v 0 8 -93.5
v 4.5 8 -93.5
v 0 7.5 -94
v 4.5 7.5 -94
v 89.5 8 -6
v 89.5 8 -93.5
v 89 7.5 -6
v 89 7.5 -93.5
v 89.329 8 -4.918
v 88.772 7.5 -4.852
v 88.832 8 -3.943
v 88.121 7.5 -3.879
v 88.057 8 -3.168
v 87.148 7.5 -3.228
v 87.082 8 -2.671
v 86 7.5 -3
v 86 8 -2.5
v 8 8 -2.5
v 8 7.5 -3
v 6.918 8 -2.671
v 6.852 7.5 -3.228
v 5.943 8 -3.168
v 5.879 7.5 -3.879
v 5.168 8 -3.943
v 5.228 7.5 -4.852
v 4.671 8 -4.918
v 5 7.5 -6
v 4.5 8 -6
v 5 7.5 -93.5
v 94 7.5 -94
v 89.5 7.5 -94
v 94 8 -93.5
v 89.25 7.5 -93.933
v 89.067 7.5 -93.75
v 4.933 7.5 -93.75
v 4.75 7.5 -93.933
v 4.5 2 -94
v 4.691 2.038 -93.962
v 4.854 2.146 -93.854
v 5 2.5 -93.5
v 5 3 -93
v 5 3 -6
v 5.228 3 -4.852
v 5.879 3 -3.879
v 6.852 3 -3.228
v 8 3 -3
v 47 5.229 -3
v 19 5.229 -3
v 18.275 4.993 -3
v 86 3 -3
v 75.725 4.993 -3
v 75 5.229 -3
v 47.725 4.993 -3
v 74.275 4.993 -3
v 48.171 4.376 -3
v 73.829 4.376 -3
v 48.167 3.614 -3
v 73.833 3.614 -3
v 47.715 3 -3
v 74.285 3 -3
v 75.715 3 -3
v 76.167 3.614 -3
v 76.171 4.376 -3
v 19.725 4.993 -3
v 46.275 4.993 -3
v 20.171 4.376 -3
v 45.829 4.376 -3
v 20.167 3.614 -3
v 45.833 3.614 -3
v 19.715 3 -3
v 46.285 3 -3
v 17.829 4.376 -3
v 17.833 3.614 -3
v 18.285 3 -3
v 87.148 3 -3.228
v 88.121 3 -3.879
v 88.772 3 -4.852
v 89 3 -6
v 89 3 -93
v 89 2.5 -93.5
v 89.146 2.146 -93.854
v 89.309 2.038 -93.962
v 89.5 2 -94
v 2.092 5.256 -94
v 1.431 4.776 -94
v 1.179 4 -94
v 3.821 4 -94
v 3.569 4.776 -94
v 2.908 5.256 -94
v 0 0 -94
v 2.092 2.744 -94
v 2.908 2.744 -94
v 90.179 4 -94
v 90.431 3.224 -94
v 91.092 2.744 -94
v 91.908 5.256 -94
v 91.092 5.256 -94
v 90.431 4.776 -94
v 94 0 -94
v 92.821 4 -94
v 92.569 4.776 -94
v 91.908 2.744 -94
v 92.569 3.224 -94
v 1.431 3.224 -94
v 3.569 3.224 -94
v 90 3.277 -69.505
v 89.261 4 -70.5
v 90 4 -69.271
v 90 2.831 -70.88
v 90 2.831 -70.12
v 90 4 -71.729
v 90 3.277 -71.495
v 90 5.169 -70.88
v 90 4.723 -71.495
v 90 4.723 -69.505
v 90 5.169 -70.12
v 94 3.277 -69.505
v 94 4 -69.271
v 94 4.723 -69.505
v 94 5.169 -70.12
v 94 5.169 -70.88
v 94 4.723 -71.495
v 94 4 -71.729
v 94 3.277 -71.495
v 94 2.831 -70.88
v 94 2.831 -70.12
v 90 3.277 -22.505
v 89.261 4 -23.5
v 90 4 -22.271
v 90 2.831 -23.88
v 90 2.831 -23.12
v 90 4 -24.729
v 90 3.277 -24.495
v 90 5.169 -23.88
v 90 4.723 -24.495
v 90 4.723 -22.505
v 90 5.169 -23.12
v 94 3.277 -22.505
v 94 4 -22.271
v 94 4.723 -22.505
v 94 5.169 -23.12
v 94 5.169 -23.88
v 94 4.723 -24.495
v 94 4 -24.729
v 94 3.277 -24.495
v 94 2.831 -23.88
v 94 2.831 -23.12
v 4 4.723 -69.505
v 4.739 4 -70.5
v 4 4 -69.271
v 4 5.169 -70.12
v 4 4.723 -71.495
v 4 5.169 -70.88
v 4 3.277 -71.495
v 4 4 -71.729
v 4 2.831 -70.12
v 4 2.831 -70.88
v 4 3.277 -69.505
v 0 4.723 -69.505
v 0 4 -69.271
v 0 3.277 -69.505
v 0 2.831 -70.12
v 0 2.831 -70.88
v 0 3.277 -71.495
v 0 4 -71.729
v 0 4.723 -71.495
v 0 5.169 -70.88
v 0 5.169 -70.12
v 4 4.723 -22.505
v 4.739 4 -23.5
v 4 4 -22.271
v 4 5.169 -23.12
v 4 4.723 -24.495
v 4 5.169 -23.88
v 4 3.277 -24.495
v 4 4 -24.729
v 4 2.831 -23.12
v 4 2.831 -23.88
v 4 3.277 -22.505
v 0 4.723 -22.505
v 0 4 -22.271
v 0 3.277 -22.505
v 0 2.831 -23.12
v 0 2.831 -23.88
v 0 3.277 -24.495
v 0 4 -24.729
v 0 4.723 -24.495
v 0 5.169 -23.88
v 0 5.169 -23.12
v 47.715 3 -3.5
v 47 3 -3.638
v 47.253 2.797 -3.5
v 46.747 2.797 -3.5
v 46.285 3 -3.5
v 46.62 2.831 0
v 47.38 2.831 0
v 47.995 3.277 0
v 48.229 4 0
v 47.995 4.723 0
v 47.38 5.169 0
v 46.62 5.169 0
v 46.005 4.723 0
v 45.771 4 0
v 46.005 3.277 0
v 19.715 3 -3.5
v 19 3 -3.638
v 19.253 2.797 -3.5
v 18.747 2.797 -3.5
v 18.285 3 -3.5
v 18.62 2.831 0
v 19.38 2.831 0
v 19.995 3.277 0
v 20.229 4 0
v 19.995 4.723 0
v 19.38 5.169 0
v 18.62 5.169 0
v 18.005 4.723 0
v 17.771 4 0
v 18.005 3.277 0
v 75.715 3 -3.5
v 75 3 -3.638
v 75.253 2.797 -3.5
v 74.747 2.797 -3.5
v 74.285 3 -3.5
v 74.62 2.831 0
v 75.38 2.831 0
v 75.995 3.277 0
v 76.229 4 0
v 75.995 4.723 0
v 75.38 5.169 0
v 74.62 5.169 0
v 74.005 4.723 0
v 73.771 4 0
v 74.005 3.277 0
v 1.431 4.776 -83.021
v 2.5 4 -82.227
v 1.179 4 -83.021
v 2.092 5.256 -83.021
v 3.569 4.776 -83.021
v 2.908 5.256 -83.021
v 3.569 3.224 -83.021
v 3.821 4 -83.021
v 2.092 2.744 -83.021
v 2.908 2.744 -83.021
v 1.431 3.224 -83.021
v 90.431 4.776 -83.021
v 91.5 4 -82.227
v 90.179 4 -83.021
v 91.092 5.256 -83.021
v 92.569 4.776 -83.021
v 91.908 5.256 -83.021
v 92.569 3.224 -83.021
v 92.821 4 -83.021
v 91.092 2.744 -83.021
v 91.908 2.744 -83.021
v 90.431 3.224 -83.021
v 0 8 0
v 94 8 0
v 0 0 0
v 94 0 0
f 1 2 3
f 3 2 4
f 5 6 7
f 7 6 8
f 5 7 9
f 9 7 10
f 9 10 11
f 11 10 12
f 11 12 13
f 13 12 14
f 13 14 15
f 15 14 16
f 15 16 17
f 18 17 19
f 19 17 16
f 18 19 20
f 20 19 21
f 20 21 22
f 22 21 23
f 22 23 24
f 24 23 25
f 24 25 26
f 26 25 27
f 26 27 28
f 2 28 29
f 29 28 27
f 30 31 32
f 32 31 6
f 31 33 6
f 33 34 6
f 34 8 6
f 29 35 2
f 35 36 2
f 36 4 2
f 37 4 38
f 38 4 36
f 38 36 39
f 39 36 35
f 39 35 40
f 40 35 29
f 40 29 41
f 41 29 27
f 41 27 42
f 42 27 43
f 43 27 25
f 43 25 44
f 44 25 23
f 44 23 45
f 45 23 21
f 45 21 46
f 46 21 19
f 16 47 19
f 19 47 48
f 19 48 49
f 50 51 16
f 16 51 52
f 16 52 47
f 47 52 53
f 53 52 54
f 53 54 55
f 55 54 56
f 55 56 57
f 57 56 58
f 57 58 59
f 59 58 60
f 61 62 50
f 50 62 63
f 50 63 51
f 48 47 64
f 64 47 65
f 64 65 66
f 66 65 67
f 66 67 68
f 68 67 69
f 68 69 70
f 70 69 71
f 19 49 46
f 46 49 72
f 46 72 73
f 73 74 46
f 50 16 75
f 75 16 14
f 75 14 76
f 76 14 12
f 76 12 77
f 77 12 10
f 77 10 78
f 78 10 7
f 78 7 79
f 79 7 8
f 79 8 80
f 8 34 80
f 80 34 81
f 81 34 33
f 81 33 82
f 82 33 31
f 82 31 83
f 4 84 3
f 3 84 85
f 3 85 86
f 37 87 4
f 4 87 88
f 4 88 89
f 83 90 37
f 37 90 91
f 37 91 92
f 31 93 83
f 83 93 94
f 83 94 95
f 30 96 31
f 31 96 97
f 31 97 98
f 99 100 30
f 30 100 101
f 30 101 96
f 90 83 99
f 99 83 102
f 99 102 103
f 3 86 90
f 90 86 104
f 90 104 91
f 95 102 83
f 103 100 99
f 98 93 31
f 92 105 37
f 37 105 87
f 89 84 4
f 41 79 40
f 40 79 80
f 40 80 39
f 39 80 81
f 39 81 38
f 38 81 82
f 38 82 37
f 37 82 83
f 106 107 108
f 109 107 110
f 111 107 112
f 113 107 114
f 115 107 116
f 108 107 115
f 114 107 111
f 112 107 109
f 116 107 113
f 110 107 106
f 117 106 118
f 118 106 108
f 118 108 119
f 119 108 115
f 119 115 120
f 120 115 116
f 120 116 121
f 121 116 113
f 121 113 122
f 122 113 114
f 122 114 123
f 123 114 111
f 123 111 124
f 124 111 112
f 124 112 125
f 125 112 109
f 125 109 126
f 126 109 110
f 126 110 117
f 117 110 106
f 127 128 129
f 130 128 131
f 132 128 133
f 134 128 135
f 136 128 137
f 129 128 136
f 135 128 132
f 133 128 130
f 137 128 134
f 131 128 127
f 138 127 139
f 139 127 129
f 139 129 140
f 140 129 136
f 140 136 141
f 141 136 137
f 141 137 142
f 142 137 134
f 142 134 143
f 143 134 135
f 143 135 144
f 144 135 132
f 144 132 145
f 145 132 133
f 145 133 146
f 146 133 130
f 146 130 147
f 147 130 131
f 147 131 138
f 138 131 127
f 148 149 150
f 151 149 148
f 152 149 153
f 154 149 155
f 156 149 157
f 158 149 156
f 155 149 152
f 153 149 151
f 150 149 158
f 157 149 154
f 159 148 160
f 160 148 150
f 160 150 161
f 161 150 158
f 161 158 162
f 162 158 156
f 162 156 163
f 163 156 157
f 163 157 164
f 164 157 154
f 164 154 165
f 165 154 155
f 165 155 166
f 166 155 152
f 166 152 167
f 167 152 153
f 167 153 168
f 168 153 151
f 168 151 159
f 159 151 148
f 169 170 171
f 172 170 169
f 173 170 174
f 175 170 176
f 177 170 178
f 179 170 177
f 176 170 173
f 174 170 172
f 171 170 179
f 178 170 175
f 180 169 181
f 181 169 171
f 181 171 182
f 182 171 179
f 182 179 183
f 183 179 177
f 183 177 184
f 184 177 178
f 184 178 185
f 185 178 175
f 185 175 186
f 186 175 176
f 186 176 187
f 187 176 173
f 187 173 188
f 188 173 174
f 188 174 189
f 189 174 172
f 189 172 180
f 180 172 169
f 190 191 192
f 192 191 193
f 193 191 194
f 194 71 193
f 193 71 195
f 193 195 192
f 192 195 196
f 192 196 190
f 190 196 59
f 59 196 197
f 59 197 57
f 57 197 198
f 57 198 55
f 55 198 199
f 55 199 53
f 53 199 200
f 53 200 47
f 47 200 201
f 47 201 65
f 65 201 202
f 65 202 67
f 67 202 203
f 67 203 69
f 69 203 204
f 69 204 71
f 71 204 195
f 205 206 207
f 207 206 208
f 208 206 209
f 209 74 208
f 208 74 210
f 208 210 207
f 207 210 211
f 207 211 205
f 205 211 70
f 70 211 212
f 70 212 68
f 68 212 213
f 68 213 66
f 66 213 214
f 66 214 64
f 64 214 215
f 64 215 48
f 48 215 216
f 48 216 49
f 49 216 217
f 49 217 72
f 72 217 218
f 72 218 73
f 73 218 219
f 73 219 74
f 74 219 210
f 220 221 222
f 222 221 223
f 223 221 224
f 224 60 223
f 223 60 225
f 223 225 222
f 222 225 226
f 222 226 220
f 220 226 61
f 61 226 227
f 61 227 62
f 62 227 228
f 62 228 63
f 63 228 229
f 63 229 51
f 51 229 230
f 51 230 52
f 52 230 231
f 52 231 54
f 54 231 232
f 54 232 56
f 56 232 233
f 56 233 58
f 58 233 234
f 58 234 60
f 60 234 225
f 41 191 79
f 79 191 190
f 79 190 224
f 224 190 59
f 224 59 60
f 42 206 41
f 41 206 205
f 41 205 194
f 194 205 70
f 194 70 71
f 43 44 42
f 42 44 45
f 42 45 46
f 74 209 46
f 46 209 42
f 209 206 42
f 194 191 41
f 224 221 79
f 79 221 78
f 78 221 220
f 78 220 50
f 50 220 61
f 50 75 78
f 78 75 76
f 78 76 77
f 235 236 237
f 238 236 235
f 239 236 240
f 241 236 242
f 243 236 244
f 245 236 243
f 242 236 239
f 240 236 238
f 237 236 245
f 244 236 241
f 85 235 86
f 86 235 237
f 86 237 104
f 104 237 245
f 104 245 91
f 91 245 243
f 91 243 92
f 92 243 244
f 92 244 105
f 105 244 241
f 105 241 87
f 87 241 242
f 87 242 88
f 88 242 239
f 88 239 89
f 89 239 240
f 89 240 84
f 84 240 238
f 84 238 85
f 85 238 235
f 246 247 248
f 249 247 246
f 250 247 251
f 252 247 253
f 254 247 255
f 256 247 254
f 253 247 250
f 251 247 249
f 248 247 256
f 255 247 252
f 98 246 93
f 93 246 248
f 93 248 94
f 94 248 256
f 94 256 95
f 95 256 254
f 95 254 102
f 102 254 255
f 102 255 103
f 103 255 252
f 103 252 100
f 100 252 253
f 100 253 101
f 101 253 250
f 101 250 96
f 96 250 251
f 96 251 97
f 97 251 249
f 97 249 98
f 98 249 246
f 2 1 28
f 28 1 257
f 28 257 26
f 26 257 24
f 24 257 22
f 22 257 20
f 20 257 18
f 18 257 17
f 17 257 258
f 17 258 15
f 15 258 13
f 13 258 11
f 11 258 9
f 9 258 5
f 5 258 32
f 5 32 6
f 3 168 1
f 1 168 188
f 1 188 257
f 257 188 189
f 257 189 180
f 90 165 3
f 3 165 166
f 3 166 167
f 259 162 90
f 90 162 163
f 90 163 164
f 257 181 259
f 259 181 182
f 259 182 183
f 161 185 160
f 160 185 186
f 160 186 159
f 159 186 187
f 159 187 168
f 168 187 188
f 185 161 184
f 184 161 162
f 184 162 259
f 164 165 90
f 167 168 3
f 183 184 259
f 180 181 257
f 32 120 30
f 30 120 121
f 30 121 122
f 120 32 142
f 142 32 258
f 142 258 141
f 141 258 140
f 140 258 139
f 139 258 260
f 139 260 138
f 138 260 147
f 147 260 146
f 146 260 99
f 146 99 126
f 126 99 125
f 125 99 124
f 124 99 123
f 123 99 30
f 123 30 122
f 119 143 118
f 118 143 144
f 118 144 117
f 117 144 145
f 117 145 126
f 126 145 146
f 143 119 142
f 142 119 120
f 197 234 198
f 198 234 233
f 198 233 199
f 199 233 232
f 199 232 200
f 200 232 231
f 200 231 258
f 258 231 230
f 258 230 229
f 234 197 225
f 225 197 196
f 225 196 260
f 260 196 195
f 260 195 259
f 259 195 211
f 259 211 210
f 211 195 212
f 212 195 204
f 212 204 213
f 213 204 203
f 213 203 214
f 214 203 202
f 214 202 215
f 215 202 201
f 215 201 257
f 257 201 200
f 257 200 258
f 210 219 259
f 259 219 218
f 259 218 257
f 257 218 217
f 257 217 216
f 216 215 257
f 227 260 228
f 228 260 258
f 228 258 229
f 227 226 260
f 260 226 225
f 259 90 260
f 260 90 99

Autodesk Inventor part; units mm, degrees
ref_plane "YZ Plane" through (0, 0, 0) normal (1, 0, 0) x (0, 1, 0)
ref_plane "XZ Plane" through (0, 0, 0) normal (0, 1, 0) x (-1, 0, 0)
sketch "Sketch3" plane through (0, 0, 0) normal (0, 1, 0) x (-1, 0, 0)
  line L0 (3, 3) -> (-97, 3) construction
  line L1 (-97, 3) -> (-97, 0) construction
  line L2 (-97, 0) -> (3, 0) construction
  line L3 (3, 0) -> (3, 3) construction
  line L4 (-97, 0) -> (-94, 0) construction
  line L5 (-94, 0) -> (-94, -94) construction
  line L6 (-94, -94) -> (-97, -94) construction
  line L7 (-97, -94) -> (-97, 0) construction
  line L8 (-97, -94) -> (3, -94) construction
  line L9 (3, -94) -> (3, -97) construction
  line L10 (3, -97) -> (-97, -97) construction
  line L11 (-97, -97) -> (-97, -94) construction
  line L12 (3, -94) -> (0, -94) construction
  line L13 (0, -94) -> (0, 0) construction
  line L14 (0, 0) -> (3, 0) construction
  line L15 (3, 0) -> (3, -94) construction
  line L16 (0, -94) -> (-94, -94)
  line L17 (-94, -94) -> (-94, 0)
  line L18 (-94, 0) -> (0, 0)
  line L19 (0, 0) -> (0, -94)
  line L20 (3, 3) -> (3, 0) construction
  dimension "d6" = 3
  dimension "d7" = 100
  dimension "d8" = 100
  dimension "d9" = 3
extrude "Extrusion2" add sketch "Sketch3" along normal blind 3
sketch "Sketch4" plane through (0, 3, 0) normal (0, 1, 0) x (1, 0, 0)
  line L0 (94, 94) -> (0, 94) projected
  line L1 (0, 0) -> (94, 0) projected
  line L2 (0, 94) -> (5, 94)
  line L3 (5, 94) -> (5, 0)
  line L4 (5, 0) -> (0, 0)
  line L5 (0, 0) -> (0, 94)
  line L6 (94, 0) -> (94, 94) projected
  line L7 (94, 94) -> (89, 94)
  line L8 (89, 94) -> (89, 0)
  line L9 (89, 0) -> (94, 0)
  line L10 (94, 0) -> (94, 94)
  line L11 (5, 3) -> (89, 3)
  line L12 (89, 3) -> (89, 0)
  line L13 (89, 0) -> (5, 0)
  line L14 (5, 0) -> (5, 3)
  dimension "d12" = 5
  dimension "d13" = 3
extrude "Extrusion3" add sketch "Sketch4" along normal blind 5 contours L6 L1 L8 L0 | L3 L1 L5 L0 | L8 L1 L3 L11
sketch "Sketch6" plane through (94, 0, -94) normal (0, 0, -1) x (-1, 0, 0)
  line L0 (0, 0) -> (94, 0) projected
  line L1 (89, 8) -> (94, 8) projected
  line L2 (89, 3) -> (89, 8) projected
  line L3 (94, 0) -> (94, 8) projected
  line L4 (0, 0) -> (0, 8) projected
  point P0 (91.5, 4)
  point P1 (2.5, 4)
  dimension "d28" = 8
  dimension "d29" = 5
  dimension "d30" = 2.5
  dimension "d31" = 4
  dimension "d32" = 2.5
hole "Hole1" at (2.5, 4, -94) at (91.5, 4, -94) direction (0, 0, 1) diameter 2.6416 depth 10.979 tip angle 118 thread size "6-32 UNC" class "2B" standard "ANSI Unified Screw Threads"
fillet "Fillet1" radius 3 2 edges at (89, 5.5, -3) (5, 5.5, -3)
fillet "Fillet2" radius 0.5 2 edges at (5, 5.5, -94) (89, 5.5, -94)
sketch "Sketch7" plane through (0, 0, 0) normal (0, 0, 1) x (1, 0, 0)
  line L0 (0, 0) -> (94, 0) projected
  line L1 (0, 0) -> (0, 8) projected
  line L2 (89, 8) -> (5, 8) projected
  point P0 (19, 4)
  point P1 (47, 4)
  point P2 (75, 4)
  dimension "d40" = 4
  dimension "d57" = 84
  dimension "d58" = 14
  dimension "d59" = 28
  dimension "d60" = 28
hole "Hole2" at (19, 4, 0) at (47, 4, 0) at (75, 4, 0) direction (0, 0, -1) diameter 2.459 depth 3.5 tip angle 118 thread size "M3x0.5" class "6H" standard "ANSI Metric M Profile"
sketch "Sketch9" plane through (0, 0, -94) normal (-1, 0, 0) x (0, 0, 1)
  line L0 (0, 8) -> (94, 8) projected
  line L1 (0, 0) -> (94, 0) projected
  line L2 (0, 0) -> (0, 8) projected
  point P0 (23.5, 4)
  point P1 (70.5, 4)
  dimension "d51" = 4
  dimension "d52" = 8
  dimension "d53" = 94
  dimension "d54" = 23.5
  dimension "d55" = 47
hole "Hole3" at (0, 4, -70.5) at (0, 4, -23.5) direction (1, 0, 0) diameter 2.459 depth 4 tip angle 118 thread size "M3x0.5" class "6H" standard "ANSI Metric M Profile"
ref_plane "Work Plane1" through (47, 0, -94) normal (-1, 0, 0) x (0, 0, 1)
mirror "Mirror1" about plane through (47, 0, -94) normal (-1, 0, 0) of "Hole3"
chamfer "Chamfer2" distance 1 angle 45 1 edges at (47, 3, -94)
chamfer "Chamfer3" distance 0.5 angle 45 3 edges at (5, 8, -49.75) (47, 8, -3) (89, 8, -49.75)
ref_plane "Work Plane2" through (47, 0, -94) normal (-1, 0, 0) x (0, 0, 1)
equation "\"d30\" = 0.5 * d29"
equation "\"d31\" = 0.5 * d28"
equation "\"d32\" = d30"
equation "\"d58\" = 0.166667 * d57"
equation "\"d59\" = 2 * d58"
equation "\"d60\" = d59"
equation "\"d51\" = 0.5 * d52"
equation "\"d54\" = 0.25 * d53"
equation "\"d55\" = 2 * d54"
properties part number "LeftPanel" material "Aluminum 6061"
